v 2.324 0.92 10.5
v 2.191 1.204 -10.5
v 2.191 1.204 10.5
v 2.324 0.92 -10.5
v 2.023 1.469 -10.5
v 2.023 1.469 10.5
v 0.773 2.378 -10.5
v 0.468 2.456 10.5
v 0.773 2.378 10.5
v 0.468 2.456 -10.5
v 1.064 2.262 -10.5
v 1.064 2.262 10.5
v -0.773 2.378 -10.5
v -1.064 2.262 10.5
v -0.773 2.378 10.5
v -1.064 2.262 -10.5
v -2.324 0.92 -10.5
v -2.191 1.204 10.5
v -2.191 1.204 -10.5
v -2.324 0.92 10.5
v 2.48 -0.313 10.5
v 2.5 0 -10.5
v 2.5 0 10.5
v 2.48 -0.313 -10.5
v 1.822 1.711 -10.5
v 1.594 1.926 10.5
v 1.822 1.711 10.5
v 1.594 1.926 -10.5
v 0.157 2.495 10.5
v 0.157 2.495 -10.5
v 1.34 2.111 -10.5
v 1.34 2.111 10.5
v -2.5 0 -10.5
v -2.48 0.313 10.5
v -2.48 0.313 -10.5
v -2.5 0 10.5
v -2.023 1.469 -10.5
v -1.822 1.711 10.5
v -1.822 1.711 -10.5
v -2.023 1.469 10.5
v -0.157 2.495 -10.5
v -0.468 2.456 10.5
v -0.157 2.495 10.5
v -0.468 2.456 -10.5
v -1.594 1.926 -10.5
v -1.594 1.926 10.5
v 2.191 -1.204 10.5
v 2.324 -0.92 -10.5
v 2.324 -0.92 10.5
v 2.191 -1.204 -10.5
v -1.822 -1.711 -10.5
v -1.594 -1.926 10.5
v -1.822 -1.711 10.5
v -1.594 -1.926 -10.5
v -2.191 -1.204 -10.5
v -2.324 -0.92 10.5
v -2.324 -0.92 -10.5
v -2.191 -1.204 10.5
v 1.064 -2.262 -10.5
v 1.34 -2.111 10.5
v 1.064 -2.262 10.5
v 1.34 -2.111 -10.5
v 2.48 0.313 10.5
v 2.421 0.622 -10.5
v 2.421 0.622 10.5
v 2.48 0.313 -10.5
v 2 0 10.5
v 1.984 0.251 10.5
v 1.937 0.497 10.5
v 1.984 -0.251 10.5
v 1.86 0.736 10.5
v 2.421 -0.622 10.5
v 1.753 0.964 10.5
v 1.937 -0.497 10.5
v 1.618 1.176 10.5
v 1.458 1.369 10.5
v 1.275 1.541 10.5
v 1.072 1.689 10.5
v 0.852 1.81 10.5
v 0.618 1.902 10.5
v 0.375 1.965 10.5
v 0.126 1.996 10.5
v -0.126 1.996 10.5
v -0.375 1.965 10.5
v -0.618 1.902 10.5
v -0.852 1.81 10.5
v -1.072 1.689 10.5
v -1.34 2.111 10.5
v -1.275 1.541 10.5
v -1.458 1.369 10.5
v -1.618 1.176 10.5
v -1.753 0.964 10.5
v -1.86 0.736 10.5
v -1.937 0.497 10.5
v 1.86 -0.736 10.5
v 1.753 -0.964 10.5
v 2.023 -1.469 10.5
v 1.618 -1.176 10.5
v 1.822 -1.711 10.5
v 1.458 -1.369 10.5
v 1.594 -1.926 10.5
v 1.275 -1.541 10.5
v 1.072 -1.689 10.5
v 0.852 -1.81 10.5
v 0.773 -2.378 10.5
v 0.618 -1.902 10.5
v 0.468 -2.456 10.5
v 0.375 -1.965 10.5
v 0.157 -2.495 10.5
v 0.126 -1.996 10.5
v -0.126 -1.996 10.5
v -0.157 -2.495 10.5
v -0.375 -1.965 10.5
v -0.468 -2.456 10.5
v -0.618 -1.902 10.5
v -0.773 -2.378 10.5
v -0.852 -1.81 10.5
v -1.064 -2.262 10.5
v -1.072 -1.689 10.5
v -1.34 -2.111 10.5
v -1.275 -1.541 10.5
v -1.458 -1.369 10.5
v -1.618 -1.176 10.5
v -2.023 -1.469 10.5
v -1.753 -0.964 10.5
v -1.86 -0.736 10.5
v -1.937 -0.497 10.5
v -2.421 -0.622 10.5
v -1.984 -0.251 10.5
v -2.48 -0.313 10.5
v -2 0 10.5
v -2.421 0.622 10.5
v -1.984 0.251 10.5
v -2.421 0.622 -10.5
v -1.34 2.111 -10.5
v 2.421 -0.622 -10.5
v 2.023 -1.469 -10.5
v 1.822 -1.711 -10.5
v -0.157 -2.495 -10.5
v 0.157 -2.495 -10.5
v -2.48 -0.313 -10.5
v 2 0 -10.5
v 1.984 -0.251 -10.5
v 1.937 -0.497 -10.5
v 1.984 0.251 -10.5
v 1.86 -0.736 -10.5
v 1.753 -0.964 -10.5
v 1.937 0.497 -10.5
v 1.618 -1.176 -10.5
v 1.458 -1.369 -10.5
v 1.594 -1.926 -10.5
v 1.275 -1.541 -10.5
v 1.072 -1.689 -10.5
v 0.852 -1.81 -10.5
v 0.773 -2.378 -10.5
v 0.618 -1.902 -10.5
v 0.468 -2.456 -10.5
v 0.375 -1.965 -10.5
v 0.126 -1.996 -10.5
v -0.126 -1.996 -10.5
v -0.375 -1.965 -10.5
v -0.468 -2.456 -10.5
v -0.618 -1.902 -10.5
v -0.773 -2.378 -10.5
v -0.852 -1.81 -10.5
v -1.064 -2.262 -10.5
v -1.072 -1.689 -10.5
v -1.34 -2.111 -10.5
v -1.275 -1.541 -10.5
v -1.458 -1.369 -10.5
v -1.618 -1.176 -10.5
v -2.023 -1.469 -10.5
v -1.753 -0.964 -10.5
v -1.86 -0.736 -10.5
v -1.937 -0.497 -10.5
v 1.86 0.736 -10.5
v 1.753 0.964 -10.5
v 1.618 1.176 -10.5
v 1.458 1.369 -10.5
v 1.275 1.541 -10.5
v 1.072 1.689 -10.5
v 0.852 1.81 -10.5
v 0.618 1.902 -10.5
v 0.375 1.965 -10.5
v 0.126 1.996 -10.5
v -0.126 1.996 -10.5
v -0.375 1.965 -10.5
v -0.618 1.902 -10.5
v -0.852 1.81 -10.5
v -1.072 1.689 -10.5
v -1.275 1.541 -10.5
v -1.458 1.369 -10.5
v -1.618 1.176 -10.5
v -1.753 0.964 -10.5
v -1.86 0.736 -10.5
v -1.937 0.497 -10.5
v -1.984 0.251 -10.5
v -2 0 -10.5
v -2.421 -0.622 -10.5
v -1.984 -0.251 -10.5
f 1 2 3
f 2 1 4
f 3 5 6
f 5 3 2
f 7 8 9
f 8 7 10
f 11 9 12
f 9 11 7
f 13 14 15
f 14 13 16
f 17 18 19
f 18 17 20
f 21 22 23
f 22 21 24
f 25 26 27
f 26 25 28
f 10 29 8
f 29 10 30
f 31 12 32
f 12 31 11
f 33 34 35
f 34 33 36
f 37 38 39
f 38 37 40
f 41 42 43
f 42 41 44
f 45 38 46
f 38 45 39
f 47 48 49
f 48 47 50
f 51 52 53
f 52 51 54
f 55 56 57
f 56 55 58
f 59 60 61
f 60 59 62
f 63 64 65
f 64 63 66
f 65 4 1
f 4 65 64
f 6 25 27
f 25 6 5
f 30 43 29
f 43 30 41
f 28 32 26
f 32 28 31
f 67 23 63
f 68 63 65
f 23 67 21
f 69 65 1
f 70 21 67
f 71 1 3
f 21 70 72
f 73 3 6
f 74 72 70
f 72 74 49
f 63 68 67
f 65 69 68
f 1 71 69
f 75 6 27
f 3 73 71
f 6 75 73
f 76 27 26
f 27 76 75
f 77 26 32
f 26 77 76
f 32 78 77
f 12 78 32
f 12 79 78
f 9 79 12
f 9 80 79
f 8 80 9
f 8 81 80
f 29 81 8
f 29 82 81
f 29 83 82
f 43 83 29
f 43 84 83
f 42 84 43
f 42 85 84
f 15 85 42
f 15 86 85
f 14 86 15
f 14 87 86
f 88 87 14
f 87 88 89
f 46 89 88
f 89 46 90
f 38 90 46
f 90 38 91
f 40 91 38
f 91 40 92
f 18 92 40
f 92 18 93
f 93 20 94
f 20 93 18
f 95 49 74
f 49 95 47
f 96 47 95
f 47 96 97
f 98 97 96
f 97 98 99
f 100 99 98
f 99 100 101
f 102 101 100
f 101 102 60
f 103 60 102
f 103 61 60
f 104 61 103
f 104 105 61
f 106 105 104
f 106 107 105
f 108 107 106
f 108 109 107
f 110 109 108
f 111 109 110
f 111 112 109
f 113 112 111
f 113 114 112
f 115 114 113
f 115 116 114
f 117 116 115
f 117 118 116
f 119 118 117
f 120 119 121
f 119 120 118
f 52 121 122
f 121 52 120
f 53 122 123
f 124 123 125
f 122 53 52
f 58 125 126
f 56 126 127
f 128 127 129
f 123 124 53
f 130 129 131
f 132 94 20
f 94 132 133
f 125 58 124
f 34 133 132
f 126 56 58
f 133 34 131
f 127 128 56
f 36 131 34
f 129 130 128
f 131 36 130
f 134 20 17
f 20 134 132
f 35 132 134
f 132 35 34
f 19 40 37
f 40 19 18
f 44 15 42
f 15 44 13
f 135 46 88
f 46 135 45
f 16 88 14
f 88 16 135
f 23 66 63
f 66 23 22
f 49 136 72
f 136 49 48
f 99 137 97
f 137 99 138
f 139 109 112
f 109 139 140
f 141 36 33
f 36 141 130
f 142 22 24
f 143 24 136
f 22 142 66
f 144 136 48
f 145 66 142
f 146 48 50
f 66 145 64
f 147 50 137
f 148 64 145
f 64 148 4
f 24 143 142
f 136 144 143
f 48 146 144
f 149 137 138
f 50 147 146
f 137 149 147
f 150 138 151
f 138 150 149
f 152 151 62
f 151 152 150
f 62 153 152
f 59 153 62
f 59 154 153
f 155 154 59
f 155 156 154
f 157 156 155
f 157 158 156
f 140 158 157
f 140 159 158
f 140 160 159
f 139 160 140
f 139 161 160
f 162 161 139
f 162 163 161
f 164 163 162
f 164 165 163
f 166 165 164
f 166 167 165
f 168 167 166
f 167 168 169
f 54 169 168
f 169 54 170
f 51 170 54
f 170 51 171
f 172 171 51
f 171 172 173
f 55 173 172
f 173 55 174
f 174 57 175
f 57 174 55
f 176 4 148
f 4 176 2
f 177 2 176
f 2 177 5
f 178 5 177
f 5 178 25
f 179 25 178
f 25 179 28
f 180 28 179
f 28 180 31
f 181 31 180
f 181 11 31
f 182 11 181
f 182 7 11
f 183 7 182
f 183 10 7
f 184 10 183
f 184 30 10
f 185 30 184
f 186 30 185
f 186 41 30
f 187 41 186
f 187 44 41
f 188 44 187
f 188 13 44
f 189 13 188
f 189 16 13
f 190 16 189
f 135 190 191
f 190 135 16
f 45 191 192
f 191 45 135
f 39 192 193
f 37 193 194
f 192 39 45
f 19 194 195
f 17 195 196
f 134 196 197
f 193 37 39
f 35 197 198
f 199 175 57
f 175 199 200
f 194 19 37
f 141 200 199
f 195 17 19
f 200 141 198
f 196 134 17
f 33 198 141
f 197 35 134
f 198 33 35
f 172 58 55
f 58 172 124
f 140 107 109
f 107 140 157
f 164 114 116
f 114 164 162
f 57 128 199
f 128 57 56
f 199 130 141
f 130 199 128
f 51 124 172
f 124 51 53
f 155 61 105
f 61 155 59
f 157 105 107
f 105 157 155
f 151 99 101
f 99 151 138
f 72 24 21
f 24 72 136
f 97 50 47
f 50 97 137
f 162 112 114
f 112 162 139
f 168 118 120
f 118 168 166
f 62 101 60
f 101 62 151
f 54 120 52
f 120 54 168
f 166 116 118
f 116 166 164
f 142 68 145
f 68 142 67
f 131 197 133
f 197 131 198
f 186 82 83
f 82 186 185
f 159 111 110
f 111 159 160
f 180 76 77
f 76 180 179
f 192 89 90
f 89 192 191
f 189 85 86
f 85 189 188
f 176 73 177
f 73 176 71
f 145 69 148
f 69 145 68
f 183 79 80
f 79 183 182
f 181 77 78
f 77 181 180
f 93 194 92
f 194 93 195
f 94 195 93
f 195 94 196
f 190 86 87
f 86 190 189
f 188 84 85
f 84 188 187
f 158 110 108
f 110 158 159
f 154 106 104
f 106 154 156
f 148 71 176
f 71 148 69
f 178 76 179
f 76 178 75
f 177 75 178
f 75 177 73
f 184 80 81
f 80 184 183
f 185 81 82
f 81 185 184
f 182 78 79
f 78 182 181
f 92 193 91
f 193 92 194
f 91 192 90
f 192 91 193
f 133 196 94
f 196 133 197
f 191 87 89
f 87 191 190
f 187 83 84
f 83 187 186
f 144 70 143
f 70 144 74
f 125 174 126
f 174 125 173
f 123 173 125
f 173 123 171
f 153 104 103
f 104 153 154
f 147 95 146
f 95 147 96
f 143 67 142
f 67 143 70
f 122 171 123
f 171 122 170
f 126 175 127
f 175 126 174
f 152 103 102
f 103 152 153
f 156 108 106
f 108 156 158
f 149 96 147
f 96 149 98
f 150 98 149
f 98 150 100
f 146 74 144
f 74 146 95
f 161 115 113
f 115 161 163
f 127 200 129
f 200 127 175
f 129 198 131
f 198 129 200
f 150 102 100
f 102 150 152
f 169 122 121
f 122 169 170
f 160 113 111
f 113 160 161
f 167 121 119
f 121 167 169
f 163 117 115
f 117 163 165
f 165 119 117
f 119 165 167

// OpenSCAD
$fn = 50;


difference() {
	union() {
		translate(v = [0, 0, -10.5000000000]) {
			cylinder(h = 21, r = 2.5000000000);
		}
	}
	union() {
		translate(v = [0, 0, -100.0000000000]) {
			cylinder(h = 200, r = 2);
		}
	}
}
